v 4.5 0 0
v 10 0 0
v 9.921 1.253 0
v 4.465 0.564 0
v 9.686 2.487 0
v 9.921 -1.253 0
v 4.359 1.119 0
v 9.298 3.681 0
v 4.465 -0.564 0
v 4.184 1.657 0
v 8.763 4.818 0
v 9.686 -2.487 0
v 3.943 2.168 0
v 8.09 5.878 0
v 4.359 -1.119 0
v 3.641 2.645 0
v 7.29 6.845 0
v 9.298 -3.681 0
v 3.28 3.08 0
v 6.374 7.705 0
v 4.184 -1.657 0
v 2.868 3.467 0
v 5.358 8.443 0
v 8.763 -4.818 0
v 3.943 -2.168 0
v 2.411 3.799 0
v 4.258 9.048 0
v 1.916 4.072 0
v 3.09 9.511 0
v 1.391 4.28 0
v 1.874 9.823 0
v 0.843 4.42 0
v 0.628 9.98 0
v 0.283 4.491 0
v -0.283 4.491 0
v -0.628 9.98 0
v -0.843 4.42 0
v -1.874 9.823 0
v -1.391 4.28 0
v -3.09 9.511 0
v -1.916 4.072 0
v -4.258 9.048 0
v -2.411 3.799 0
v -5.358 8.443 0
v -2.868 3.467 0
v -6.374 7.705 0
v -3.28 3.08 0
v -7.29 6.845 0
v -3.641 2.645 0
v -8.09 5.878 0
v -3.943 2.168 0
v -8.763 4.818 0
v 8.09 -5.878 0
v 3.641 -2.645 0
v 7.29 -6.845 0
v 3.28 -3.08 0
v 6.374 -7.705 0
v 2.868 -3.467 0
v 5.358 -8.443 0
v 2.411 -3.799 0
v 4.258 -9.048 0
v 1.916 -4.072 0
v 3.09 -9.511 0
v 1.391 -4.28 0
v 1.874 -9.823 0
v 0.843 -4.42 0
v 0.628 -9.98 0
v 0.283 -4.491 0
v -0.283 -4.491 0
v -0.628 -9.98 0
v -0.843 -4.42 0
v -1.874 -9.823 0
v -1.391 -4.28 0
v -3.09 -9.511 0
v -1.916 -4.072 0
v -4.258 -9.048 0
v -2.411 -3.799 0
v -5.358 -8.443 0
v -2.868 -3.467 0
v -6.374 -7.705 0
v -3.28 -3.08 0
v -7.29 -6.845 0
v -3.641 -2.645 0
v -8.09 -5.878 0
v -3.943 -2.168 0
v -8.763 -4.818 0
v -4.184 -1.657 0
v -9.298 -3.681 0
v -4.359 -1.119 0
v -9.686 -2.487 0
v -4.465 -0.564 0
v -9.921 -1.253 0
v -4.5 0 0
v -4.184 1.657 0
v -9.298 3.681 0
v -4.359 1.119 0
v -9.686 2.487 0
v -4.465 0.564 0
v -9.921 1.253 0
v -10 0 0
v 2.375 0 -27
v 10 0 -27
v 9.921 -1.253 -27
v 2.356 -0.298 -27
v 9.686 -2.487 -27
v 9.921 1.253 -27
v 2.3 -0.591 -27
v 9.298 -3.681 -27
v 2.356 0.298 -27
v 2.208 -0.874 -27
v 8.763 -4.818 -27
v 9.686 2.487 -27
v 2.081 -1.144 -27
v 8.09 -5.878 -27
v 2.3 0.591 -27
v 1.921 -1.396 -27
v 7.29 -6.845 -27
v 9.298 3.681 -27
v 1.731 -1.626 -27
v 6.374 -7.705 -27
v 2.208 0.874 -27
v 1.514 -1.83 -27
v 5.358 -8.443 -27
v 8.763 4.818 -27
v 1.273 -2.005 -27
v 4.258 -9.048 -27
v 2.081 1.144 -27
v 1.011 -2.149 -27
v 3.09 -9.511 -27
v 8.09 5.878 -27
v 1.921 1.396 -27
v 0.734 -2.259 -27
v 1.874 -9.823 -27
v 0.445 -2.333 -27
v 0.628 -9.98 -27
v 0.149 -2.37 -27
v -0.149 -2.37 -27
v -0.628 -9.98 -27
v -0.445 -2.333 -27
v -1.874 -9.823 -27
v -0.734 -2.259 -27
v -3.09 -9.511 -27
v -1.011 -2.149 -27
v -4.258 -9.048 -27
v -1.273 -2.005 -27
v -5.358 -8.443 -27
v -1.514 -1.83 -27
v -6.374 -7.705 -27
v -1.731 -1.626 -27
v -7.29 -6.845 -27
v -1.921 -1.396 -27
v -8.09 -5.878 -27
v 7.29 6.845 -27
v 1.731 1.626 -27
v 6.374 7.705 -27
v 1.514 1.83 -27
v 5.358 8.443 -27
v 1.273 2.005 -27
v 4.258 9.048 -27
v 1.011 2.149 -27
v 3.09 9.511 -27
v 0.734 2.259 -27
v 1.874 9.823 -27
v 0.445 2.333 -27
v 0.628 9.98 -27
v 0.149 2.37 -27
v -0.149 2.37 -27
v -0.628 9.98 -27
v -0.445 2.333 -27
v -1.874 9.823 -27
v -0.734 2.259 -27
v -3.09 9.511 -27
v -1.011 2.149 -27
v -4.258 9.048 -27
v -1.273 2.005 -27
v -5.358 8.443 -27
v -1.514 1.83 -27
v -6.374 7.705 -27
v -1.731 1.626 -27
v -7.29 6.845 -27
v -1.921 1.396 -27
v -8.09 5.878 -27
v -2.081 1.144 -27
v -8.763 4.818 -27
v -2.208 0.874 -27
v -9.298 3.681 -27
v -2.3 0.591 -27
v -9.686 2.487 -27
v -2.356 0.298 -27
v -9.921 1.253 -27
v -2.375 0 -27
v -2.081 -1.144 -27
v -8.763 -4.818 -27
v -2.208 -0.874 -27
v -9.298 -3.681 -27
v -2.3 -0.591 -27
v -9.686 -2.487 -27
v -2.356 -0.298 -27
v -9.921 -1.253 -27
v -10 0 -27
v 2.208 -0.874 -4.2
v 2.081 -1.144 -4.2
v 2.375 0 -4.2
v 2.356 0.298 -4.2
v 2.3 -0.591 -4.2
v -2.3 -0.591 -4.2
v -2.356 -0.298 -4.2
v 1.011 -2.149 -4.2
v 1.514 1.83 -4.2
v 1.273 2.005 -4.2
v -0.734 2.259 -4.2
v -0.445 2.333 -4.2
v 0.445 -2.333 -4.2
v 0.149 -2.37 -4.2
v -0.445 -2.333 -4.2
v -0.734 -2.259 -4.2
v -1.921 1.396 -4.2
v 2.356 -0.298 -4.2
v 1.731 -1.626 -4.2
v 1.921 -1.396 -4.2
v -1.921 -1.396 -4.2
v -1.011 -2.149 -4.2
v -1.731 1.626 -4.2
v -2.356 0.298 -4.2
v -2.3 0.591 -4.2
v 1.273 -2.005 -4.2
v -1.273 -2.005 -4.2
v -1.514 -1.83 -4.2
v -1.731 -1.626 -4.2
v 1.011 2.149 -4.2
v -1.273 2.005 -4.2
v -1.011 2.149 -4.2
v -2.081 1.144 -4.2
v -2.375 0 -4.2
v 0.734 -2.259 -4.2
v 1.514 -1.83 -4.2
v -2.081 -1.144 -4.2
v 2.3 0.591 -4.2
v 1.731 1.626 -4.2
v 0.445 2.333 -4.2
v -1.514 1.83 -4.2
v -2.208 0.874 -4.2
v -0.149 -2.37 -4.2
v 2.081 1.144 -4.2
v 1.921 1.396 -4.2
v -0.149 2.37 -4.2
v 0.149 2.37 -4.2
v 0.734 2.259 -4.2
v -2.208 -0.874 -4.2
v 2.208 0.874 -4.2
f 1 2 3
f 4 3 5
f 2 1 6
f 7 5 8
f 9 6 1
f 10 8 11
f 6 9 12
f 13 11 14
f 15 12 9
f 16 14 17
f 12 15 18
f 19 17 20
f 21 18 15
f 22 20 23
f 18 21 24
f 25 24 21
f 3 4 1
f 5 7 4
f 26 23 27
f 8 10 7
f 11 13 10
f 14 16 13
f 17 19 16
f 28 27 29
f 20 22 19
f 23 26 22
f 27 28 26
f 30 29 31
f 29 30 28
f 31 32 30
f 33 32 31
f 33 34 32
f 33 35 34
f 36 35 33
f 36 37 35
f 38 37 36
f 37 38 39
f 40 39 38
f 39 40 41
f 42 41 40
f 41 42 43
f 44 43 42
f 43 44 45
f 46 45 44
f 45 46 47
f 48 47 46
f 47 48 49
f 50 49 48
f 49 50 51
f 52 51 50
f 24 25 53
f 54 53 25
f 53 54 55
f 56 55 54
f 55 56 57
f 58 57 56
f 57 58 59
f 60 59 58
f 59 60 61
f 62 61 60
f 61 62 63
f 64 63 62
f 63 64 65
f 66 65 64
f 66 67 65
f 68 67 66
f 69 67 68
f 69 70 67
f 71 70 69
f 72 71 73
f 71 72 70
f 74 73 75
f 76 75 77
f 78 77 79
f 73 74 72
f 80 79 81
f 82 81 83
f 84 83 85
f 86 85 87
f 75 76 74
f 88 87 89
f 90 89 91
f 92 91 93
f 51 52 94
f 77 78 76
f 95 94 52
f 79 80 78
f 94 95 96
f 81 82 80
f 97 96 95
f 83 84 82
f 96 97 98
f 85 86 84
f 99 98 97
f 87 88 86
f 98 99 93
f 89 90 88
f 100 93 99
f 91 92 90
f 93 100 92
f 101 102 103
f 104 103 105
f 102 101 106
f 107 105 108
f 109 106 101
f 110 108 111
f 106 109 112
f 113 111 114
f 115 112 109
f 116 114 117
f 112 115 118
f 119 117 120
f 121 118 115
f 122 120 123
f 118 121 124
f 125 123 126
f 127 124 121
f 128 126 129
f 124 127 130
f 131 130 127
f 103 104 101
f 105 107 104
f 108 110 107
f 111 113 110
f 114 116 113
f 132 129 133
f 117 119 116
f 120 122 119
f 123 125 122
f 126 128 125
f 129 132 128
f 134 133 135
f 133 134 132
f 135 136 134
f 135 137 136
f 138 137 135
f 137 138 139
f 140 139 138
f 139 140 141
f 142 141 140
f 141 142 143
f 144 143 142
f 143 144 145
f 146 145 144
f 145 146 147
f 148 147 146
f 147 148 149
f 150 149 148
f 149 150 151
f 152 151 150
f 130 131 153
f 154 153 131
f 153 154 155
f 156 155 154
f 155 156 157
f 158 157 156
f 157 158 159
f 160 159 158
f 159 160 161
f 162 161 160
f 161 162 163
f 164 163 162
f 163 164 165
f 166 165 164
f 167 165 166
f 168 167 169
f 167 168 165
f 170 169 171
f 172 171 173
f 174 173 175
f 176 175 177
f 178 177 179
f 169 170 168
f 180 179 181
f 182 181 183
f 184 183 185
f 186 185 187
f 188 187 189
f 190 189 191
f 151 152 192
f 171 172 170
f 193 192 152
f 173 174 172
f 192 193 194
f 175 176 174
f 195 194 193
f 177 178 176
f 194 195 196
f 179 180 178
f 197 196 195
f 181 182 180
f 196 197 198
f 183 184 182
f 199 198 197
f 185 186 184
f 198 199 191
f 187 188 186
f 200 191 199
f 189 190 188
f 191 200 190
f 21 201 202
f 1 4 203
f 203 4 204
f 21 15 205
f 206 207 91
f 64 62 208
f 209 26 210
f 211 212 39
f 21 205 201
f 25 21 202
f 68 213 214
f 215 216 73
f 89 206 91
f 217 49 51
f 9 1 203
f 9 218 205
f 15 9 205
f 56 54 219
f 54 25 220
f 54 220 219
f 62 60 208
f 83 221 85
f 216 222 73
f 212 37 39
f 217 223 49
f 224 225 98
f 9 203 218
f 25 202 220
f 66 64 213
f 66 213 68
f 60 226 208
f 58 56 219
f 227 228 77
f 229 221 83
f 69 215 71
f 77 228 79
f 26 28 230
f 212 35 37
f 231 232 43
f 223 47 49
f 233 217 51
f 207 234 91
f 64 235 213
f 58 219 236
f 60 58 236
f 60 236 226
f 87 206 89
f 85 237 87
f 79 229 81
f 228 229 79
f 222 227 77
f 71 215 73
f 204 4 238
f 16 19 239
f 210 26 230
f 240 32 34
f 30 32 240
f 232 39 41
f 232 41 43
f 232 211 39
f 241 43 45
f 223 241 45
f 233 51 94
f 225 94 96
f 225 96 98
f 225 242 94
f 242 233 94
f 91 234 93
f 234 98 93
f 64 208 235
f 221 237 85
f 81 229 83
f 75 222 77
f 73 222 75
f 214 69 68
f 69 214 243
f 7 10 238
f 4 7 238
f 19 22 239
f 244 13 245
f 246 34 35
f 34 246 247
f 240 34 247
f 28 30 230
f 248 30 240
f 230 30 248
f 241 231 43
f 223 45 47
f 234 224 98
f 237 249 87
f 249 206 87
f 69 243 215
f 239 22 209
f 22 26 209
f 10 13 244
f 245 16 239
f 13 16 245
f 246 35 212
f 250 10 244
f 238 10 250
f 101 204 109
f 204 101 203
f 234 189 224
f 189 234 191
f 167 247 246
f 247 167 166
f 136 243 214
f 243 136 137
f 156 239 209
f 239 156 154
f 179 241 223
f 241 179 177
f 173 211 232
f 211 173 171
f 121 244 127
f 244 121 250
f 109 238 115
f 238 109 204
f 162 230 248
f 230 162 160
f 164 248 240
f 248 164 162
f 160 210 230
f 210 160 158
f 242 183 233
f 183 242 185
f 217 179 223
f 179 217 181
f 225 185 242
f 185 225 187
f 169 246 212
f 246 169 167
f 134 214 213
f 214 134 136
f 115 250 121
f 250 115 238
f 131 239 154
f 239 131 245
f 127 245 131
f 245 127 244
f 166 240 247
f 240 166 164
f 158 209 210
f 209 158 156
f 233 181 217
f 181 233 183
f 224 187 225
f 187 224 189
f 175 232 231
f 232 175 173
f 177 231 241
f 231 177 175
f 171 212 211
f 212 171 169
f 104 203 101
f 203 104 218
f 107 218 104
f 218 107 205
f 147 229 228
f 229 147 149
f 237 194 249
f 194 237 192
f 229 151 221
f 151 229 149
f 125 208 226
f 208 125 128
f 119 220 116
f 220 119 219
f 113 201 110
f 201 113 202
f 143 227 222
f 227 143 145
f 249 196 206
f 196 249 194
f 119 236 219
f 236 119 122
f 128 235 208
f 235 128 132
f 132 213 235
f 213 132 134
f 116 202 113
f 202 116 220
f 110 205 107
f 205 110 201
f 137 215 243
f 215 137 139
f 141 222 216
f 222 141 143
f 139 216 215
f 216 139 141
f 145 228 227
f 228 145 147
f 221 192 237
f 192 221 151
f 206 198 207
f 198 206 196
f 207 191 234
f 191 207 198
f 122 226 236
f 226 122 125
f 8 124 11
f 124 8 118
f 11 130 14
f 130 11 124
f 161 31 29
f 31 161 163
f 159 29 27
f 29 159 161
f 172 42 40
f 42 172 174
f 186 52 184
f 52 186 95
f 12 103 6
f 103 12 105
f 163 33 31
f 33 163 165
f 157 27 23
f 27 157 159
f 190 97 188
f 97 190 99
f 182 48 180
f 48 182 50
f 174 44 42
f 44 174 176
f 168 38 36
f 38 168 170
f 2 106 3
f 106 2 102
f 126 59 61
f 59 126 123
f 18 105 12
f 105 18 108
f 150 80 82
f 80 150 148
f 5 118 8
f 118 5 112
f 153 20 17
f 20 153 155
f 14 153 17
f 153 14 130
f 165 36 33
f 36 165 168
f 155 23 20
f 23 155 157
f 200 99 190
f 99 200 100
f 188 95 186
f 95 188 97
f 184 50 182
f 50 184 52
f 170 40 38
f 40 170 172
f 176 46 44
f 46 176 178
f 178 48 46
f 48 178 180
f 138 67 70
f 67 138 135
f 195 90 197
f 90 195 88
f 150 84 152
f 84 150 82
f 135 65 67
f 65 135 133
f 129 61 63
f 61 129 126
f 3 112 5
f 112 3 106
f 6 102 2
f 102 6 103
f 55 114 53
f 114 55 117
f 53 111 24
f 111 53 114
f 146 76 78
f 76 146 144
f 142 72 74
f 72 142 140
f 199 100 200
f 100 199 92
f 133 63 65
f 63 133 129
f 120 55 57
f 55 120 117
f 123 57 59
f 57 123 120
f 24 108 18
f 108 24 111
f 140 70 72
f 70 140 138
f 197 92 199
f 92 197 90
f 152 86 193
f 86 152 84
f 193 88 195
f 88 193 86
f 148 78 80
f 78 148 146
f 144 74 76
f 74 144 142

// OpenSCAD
$fn = 50;


difference() {
	union() {
		translate(v = [0, 0, -27.0000000000]) {
			cylinder(h = 27, r = 10.0000000000);
		}
		cylinder(h = 0, r = 19.0000000000);
	}
	union() {
		translate(v = [0, 0, 0]) {
			rotate(a = [0, 0, 0]) {
				difference() {
					union() {
						#translate(v = [0, 0, -27.0000000000]) {
							cylinder(h = 27, r = 2.2500000000);
						}
						#translate(v = [0, 0, -4.2000000000]) {
							cylinder(h = 4.2000000000, r = 10.0000000000, r1 = 2.3750000000, r2 = 4.5000000000);
						}
						#translate(v = [0, 0, -27.0000000000]) {
							cylinder(h = 27, r = 2.3750000000);
						}
						#translate(v = [0, 0, -27.0000000000]) {
							cylinder(h = 27, r = 2.2500000000);
						}
					}
					union();
				}
			}
		}
	}
}
